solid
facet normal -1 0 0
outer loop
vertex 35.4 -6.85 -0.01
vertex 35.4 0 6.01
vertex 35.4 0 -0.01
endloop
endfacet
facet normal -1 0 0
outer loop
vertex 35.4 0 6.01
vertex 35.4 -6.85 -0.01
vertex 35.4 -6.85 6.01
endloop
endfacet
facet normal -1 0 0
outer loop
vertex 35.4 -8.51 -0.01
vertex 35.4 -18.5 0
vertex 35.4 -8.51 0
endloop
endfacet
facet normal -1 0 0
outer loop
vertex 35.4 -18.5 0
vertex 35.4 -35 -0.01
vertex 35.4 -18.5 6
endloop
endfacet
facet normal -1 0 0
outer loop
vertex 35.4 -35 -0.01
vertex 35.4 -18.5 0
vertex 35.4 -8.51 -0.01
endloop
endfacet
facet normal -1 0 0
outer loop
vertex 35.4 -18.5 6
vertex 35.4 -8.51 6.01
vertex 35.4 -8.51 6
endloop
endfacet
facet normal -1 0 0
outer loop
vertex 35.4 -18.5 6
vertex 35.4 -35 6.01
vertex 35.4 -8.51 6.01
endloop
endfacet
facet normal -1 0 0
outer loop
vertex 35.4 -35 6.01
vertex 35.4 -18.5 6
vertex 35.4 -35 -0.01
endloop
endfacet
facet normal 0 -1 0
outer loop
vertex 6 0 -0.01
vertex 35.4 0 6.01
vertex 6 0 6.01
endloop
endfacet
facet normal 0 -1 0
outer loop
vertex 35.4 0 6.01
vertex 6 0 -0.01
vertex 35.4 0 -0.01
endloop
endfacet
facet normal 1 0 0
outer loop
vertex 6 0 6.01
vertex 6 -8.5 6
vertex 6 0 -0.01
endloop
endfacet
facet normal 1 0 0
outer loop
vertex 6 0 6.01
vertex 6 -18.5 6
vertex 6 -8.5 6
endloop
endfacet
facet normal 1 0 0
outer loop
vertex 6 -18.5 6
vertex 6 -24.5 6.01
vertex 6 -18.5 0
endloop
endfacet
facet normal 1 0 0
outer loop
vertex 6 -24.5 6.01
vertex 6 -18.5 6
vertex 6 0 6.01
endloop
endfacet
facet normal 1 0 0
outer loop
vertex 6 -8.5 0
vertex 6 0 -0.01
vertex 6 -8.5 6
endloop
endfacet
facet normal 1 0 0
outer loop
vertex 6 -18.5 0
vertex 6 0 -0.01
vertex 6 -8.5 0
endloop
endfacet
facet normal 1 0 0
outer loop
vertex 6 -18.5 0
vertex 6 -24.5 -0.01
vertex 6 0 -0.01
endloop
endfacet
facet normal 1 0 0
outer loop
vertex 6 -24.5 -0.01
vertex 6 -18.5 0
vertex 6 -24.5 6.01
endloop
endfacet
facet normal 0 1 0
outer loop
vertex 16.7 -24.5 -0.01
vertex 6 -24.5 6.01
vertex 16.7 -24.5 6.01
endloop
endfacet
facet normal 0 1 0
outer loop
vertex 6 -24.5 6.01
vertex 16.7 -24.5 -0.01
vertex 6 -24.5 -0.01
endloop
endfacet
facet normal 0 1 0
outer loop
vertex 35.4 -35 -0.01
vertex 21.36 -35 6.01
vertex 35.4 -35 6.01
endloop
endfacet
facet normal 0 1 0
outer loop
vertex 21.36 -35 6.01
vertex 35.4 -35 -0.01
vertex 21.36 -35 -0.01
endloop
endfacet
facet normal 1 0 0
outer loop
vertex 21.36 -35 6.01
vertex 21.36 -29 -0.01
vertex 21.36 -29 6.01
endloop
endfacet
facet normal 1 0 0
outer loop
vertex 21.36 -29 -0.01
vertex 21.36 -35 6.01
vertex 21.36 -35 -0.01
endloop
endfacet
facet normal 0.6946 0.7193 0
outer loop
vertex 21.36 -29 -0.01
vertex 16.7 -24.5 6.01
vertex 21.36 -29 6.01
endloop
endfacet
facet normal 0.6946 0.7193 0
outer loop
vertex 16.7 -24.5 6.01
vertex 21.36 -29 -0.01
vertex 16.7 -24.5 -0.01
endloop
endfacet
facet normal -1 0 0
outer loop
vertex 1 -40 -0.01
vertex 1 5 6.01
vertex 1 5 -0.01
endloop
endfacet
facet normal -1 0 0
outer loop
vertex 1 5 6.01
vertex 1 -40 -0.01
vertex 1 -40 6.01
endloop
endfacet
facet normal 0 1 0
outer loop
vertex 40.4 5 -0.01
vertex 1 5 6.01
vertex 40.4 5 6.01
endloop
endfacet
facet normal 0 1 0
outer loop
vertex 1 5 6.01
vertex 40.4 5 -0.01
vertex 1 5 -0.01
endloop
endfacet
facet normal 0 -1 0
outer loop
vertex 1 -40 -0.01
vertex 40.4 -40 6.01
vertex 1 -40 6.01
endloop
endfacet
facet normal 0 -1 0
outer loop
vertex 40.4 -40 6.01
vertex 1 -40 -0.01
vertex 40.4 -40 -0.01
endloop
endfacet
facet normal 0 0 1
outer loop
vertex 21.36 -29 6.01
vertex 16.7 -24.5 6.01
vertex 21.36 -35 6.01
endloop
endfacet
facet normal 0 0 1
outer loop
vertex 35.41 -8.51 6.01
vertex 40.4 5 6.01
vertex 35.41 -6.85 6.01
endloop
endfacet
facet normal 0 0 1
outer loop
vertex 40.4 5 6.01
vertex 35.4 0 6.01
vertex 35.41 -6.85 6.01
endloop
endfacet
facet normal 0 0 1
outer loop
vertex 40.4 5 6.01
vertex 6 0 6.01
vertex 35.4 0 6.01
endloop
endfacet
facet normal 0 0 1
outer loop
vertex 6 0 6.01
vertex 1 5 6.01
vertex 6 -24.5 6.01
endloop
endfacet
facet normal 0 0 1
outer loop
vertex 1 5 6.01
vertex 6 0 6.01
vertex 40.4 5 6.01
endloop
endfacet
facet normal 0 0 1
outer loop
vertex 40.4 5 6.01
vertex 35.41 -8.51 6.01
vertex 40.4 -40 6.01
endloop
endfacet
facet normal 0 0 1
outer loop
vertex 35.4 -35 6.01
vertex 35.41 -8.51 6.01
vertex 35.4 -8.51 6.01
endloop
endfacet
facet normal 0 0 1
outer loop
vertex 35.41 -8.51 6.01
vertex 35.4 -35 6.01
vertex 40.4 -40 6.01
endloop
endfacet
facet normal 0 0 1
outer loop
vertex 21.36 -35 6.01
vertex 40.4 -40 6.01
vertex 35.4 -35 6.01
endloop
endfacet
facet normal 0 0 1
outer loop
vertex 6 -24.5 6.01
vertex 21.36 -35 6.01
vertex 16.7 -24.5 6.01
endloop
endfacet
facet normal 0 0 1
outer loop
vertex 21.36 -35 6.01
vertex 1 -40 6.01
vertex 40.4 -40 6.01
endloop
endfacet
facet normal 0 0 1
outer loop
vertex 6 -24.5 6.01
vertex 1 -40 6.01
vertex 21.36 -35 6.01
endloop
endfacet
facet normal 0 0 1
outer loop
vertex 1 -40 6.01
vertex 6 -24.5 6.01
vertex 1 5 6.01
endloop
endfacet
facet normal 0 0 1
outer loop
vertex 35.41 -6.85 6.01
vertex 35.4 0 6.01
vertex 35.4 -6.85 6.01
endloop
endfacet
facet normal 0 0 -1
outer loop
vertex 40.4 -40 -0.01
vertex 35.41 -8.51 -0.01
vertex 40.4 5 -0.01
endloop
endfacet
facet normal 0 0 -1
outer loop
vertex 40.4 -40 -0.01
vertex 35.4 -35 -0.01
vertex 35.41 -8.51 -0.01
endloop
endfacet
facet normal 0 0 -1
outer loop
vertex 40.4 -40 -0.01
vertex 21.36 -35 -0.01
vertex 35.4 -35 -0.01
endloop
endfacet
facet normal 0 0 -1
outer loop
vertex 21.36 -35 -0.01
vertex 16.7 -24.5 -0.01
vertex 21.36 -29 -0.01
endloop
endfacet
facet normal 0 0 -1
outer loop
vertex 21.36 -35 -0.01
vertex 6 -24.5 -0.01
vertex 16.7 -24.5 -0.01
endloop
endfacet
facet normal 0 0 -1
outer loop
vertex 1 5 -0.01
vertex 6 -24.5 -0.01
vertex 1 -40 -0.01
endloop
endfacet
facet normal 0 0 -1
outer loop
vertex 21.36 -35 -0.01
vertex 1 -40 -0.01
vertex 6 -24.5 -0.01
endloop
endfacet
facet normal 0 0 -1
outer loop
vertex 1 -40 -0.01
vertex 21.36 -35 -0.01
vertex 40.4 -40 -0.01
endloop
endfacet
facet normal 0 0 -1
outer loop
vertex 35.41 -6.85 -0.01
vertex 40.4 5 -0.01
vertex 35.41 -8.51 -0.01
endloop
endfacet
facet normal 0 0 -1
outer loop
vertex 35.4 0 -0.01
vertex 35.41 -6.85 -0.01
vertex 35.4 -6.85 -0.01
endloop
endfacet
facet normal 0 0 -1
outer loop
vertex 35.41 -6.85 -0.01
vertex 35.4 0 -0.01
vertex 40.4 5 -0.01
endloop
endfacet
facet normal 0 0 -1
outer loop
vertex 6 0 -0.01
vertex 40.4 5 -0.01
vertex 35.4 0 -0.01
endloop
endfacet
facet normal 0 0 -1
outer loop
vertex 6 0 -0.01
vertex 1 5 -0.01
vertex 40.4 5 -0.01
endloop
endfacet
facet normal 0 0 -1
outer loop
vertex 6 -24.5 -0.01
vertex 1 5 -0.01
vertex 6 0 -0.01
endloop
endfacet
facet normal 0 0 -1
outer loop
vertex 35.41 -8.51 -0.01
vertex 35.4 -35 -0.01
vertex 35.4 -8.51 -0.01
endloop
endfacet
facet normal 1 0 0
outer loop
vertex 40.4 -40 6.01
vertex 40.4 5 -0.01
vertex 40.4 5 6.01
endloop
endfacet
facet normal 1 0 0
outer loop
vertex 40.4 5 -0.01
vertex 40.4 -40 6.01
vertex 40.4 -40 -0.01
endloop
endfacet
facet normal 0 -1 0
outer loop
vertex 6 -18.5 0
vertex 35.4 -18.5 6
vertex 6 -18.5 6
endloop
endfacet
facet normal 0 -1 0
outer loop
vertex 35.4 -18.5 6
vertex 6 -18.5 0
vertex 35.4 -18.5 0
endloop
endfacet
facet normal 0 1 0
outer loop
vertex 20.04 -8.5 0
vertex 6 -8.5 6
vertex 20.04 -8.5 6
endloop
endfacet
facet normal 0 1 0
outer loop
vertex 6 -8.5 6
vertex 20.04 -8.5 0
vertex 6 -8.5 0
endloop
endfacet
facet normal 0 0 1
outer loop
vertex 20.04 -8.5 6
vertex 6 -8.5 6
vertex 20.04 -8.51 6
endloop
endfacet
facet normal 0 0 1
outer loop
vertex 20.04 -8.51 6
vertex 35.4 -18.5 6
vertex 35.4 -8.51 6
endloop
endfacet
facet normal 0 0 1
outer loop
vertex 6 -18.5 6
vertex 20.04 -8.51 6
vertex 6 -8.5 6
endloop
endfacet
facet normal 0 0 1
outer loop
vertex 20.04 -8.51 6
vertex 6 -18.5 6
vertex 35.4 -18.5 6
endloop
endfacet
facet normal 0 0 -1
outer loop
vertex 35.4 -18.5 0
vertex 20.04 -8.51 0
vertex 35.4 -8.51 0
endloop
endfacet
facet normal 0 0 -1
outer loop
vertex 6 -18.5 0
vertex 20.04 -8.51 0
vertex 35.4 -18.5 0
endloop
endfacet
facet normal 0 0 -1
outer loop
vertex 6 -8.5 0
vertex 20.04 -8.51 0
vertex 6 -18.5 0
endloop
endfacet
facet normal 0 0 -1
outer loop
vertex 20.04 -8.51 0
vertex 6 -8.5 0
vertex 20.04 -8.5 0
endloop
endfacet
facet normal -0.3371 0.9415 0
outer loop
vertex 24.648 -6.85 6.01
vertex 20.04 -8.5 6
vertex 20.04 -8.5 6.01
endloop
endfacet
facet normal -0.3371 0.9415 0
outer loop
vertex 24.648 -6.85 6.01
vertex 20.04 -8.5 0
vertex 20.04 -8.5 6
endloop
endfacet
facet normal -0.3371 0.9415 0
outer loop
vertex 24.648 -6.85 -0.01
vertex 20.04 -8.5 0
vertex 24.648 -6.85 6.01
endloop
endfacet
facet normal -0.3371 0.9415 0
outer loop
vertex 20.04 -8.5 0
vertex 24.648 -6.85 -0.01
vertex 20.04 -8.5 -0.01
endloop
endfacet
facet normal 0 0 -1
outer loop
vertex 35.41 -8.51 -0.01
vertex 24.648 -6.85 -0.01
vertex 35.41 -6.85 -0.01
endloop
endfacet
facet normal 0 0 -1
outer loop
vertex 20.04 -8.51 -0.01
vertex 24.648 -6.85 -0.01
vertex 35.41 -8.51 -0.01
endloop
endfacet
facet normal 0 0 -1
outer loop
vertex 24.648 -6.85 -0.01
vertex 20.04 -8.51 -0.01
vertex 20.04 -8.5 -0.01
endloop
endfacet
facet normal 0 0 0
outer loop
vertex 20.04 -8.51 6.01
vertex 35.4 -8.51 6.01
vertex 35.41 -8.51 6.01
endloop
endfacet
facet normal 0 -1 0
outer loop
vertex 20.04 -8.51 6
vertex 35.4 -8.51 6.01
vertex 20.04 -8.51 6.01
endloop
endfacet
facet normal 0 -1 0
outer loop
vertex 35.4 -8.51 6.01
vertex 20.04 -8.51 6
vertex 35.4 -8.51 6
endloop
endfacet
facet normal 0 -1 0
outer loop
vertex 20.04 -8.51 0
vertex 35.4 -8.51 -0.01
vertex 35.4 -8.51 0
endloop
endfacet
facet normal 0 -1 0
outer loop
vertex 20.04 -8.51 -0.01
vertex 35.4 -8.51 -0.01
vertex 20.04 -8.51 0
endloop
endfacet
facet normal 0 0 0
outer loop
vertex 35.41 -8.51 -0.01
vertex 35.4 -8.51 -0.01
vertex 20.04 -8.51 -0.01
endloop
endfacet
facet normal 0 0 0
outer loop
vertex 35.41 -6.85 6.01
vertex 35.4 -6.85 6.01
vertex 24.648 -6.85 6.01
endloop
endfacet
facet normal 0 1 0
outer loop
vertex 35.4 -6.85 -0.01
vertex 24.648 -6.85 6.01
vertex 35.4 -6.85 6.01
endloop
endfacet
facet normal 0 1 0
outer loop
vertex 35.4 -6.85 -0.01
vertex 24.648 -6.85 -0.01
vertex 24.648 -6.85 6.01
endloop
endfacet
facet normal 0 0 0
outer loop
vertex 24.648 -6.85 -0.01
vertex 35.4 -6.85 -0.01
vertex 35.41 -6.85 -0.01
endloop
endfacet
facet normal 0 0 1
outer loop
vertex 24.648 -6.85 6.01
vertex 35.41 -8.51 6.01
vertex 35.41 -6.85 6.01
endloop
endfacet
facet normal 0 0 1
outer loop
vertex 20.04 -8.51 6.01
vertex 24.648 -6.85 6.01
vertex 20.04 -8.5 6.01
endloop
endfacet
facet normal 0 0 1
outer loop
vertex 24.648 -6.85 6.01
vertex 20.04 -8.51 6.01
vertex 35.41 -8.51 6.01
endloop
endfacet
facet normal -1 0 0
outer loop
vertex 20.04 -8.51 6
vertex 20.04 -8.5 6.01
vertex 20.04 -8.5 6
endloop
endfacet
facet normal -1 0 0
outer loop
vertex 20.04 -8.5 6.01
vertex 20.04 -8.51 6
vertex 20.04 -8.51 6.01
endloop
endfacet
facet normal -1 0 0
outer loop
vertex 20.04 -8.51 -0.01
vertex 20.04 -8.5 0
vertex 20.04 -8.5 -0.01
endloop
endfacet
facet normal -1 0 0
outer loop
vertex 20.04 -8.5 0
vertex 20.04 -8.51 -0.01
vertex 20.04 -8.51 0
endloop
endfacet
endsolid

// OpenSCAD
CLOSED = 22.5 + 3 -1;

OPENED = 30 -3+2;
OPENED_MARGIN = 5 +3-2;

THICKNESS_H = 6;
THICKNESS_Z = 10;

EXTRUDER_WIDTH = 13.2 -2 +2.5;
EXTRUDER_HANDLE_THICKNESS = 7 + 1.5;
EXTRUDER_HANDLE_THICKNESS_MIN = 5.2;

TRAVEL = EXTRUDER_WIDTH * 1 +2;
WIDTH = EXTRUDER_WIDTH + TRAVEL + THICKNESS_H*2;

HEIGHT = OPENED + OPENED_MARGIN + THICKNESS_Z * 2;
PLAY = .17*2;
ATOM = 0.01;

%cube([1, THICKNESS_H*2, OPENED+OPENED_MARGIN]);
%cube([2, THICKNESS_H*2, OPENED]);
%cube([3, THICKNESS_H*2, CLOSED]);
%translate([THICKNESS_H, -ATOM/2-2, -THICKNESS_Z])
    cube([WIDTH-THICKNESS_H*2, THICKNESS_H+ATOM, THICKNESS_Z]);
%translate([THICKNESS_H, -ATOM/2-2, HEIGHT-THICKNESS_Z*2])
    cube([WIDTH-THICKNESS_H*2, THICKNESS_H+ATOM, THICKNESS_Z]);

module lock() {
    hull() {
        w = WIDTH-THICKNESS_H*2-EXTRUDER_WIDTH-PLAY;
        h = EXTRUDER_HANDLE_THICKNESS - EXTRUDER_HANDLE_THICKNESS_MIN;

        translate([w*.3+THICKNESS_H+EXTRUDER_WIDTH+PLAY, -ATOM, EXTRUDER_HANDLE_THICKNESS-h/2])
        cube([w*.7+ATOM, THICKNESS_H+ATOM*2, h/2+ATOM]);

        translate([THICKNESS_H+EXTRUDER_WIDTH+PLAY, -ATOM, EXTRUDER_HANDLE_THICKNESS])
        cube([w+ATOM, THICKNESS_H+ATOM*2, ATOM]);
    }
}

module hollowing(for_hull=false) {
    difference() {
        union() {
            translate([THICKNESS_H, -ATOM/2, 0])
            cube([WIDTH-THICKNESS_H*2, THICKNESS_H+ATOM, EXTRUDER_HANDLE_THICKNESS]);

            translate([THICKNESS_H, -ATOM/2, 0])
            cube([EXTRUDER_WIDTH+PLAY, THICKNESS_H+ATOM, CLOSED]);

            translate([WIDTH-THICKNESS_H-EXTRUDER_WIDTH-PLAY, -ATOM/2, 0])
            cube([EXTRUDER_WIDTH+PLAY, THICKNESS_H+ATOM, OPENED+OPENED_MARGIN]);

            if (for_hull)
                translate([THICKNESS_H, -ATOM/2, 0])
                cube([EXTRUDER_WIDTH+PLAY, THICKNESS_H+ATOM, OPENED+OPENED_MARGIN]);
                
            hull() {
                translate([THICKNESS_H+EXTRUDER_WIDTH-3, -ATOM/2, 0])
                cube([EXTRUDER_WIDTH, THICKNESS_H+ATOM, CLOSED]);

                translate([WIDTH-THICKNESS_H-EXTRUDER_WIDTH-PLAY, -ATOM/2, 0])
                cube([EXTRUDER_WIDTH+PLAY, THICKNESS_H+ATOM, OPENED]);
            }
        }
    }
}

module body() {
    difference() {
        minkowski() {
            hull() hollowing(for_hull=true);
            cube([THICKNESS_Z, ATOM, THICKNESS_Z], center=true);
        }
        
        translate([0, -THICKNESS_H/2, 0])
        scale([1, 2, 1]) hollowing();
    }
    translate([THICKNESS_H, 0, EXTRUDER_HANDLE_THICKNESS])
    cube([WIDTH-THICKNESS_H*2, THICKNESS_H, THICKNESS_Z]);
    lock();
}

rotate([$preview ? 0 : 90, 0, 0])
body();
